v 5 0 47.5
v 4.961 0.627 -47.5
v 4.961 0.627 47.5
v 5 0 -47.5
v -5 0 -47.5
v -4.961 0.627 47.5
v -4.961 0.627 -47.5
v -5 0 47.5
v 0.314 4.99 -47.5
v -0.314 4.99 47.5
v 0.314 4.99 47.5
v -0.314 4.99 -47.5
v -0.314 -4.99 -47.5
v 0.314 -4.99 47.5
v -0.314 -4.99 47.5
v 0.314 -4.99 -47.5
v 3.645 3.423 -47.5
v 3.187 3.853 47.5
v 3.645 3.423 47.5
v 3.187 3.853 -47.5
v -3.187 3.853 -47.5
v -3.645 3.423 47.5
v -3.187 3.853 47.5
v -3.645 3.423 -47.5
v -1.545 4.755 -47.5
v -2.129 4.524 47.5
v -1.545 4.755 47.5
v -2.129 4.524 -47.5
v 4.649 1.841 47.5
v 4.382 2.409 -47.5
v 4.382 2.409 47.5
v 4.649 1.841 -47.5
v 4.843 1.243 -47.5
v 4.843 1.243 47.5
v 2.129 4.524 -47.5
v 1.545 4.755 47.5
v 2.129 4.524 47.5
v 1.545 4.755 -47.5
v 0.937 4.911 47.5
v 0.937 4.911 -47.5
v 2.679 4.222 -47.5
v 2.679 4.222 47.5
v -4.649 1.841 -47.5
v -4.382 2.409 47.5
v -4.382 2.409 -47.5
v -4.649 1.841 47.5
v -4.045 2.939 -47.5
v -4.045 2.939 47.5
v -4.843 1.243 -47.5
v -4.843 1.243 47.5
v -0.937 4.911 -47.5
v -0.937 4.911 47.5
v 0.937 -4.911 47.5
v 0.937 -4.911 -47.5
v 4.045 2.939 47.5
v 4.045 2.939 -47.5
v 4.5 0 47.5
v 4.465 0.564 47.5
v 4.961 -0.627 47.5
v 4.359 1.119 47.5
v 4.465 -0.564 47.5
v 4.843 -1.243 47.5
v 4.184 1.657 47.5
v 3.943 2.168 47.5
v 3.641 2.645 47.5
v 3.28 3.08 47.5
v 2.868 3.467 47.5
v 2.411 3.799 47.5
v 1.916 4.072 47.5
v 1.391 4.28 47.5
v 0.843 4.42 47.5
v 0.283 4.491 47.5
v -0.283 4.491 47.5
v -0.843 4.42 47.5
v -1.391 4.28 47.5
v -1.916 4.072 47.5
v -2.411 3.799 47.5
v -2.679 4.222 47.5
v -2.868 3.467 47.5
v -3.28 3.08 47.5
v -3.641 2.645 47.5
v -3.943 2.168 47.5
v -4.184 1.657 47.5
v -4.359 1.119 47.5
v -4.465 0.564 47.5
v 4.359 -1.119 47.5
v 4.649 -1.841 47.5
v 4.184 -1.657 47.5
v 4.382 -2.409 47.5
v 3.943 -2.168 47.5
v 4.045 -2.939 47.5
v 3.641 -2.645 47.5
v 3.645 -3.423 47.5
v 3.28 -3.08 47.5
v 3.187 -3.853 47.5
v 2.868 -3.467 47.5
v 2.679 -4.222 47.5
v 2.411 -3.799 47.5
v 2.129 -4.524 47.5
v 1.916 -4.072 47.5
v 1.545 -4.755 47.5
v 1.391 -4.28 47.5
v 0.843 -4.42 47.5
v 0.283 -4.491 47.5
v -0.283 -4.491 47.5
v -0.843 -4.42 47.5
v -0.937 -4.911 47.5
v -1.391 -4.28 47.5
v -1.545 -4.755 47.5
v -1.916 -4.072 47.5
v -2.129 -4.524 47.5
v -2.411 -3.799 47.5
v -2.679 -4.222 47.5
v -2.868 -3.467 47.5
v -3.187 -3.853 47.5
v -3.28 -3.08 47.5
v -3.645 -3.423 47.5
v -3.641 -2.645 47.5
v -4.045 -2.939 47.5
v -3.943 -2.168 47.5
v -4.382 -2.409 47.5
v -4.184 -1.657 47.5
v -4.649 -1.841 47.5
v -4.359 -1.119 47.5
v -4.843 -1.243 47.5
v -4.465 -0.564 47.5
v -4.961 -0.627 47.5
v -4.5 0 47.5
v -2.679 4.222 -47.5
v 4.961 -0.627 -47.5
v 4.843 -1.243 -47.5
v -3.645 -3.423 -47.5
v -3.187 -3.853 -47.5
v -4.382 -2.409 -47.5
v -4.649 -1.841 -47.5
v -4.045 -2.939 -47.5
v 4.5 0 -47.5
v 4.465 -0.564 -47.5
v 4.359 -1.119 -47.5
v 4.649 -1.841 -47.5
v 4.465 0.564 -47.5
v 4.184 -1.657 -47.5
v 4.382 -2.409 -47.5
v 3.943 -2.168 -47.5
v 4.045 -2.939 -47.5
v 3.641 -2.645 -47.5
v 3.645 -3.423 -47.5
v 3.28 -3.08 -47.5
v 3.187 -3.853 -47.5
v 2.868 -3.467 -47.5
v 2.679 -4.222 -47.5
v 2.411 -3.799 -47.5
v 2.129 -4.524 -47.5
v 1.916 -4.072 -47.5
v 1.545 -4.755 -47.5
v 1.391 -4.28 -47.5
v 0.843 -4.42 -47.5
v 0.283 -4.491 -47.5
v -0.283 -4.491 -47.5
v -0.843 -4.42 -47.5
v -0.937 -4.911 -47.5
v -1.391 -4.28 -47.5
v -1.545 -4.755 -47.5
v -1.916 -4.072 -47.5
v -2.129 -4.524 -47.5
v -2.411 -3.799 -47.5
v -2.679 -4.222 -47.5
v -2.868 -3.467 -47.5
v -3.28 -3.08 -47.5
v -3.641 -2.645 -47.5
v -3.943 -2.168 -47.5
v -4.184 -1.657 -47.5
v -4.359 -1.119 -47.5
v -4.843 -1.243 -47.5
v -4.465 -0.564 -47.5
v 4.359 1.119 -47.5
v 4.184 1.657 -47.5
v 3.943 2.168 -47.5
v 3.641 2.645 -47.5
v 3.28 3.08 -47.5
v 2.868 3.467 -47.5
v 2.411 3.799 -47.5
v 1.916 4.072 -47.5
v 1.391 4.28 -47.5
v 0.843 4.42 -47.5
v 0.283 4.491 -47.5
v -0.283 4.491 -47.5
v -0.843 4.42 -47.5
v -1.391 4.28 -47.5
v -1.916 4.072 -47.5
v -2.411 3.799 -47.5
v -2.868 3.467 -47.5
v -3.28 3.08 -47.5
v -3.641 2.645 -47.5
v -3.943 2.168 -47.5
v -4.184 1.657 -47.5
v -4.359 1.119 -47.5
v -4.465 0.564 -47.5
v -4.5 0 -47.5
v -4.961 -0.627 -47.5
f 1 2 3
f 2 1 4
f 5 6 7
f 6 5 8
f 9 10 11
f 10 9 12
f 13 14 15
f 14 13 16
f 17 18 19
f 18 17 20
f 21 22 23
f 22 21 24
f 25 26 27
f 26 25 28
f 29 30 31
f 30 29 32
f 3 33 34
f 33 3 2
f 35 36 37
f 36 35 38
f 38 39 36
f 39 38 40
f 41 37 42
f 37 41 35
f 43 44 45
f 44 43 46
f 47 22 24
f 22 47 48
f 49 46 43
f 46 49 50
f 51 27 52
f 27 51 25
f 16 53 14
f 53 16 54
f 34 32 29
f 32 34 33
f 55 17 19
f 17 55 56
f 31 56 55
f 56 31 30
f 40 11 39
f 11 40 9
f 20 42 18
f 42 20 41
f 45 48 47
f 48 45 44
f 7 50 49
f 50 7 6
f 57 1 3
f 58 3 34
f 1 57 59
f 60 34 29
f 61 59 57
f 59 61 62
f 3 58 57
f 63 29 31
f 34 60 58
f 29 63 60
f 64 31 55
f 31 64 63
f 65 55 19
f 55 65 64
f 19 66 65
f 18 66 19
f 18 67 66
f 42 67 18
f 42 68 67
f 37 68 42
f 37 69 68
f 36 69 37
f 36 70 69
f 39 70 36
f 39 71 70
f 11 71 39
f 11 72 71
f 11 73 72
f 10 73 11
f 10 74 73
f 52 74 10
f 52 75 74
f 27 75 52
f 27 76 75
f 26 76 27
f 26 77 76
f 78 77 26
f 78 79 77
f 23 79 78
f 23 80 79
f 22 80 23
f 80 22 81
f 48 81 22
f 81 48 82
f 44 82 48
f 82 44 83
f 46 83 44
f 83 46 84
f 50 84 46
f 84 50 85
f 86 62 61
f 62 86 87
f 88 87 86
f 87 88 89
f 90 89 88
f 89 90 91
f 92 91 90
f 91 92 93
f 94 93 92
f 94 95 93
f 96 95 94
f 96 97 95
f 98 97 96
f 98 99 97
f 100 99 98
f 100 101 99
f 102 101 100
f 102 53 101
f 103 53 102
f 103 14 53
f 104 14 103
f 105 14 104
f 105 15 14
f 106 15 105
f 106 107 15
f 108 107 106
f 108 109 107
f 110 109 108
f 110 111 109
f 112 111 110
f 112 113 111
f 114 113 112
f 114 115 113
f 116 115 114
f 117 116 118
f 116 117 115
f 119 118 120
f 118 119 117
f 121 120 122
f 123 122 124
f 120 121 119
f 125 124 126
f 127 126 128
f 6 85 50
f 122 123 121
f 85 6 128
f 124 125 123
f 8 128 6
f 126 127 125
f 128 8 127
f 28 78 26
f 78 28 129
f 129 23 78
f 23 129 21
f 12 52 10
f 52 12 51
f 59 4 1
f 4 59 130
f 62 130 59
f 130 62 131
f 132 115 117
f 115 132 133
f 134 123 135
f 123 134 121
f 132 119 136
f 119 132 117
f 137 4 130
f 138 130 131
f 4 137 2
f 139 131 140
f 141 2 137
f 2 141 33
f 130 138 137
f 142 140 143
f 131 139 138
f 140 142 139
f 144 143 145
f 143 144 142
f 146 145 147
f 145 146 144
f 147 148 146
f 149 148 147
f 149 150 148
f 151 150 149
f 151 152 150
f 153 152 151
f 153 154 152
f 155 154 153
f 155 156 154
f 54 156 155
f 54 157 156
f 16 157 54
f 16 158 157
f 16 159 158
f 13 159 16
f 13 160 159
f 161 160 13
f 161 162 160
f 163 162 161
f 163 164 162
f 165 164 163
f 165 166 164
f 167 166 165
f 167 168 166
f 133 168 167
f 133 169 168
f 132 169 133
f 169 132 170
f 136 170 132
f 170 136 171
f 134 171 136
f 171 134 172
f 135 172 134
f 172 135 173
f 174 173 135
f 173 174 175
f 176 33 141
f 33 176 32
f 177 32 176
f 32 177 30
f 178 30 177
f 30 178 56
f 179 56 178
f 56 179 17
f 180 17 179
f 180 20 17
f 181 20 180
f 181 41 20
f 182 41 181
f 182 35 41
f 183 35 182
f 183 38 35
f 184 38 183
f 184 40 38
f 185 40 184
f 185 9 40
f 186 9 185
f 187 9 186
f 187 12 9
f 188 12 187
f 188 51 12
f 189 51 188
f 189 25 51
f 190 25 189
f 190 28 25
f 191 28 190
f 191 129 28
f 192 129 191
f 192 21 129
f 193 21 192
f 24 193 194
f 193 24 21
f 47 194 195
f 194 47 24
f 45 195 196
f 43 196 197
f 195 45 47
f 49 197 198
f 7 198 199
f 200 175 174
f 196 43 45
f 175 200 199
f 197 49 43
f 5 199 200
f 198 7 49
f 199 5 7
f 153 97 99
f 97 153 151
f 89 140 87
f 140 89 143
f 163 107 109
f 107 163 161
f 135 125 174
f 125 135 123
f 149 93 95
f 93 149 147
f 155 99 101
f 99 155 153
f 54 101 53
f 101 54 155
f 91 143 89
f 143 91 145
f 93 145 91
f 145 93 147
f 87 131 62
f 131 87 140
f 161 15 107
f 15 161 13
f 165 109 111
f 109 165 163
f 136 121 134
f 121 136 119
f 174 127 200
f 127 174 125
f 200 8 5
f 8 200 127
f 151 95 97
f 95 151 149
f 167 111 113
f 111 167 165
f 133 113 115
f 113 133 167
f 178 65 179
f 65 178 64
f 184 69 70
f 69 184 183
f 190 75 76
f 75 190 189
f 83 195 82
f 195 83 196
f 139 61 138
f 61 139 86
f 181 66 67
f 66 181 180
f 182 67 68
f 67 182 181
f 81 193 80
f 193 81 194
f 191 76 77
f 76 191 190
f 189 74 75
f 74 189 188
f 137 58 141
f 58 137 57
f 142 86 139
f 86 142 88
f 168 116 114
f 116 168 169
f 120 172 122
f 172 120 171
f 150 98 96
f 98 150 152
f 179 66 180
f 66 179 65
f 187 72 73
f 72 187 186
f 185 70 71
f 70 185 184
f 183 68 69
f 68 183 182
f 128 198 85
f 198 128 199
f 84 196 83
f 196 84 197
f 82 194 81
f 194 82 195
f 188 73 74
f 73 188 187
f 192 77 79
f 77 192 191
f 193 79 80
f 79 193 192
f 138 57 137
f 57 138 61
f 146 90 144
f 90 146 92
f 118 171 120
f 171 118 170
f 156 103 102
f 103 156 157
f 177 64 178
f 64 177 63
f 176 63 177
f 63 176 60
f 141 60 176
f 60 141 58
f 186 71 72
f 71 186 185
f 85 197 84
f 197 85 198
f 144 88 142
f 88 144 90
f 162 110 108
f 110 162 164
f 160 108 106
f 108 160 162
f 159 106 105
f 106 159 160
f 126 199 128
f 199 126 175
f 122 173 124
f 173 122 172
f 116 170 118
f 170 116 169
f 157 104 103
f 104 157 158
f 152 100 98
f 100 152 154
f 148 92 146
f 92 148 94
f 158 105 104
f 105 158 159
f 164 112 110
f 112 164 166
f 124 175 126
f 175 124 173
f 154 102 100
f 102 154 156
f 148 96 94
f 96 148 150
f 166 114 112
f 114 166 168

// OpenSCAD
$fn = 50;


difference() {
	union() {
		translate(v = [0, 0, -47.5000000000]) {
			cylinder(h = 95, r = 5.0000000000);
		}
	}
	union() {
		translate(v = [0, 0, -100.0000000000]) {
			cylinder(h = 200, r = 4.5000000000);
		}
	}
}
